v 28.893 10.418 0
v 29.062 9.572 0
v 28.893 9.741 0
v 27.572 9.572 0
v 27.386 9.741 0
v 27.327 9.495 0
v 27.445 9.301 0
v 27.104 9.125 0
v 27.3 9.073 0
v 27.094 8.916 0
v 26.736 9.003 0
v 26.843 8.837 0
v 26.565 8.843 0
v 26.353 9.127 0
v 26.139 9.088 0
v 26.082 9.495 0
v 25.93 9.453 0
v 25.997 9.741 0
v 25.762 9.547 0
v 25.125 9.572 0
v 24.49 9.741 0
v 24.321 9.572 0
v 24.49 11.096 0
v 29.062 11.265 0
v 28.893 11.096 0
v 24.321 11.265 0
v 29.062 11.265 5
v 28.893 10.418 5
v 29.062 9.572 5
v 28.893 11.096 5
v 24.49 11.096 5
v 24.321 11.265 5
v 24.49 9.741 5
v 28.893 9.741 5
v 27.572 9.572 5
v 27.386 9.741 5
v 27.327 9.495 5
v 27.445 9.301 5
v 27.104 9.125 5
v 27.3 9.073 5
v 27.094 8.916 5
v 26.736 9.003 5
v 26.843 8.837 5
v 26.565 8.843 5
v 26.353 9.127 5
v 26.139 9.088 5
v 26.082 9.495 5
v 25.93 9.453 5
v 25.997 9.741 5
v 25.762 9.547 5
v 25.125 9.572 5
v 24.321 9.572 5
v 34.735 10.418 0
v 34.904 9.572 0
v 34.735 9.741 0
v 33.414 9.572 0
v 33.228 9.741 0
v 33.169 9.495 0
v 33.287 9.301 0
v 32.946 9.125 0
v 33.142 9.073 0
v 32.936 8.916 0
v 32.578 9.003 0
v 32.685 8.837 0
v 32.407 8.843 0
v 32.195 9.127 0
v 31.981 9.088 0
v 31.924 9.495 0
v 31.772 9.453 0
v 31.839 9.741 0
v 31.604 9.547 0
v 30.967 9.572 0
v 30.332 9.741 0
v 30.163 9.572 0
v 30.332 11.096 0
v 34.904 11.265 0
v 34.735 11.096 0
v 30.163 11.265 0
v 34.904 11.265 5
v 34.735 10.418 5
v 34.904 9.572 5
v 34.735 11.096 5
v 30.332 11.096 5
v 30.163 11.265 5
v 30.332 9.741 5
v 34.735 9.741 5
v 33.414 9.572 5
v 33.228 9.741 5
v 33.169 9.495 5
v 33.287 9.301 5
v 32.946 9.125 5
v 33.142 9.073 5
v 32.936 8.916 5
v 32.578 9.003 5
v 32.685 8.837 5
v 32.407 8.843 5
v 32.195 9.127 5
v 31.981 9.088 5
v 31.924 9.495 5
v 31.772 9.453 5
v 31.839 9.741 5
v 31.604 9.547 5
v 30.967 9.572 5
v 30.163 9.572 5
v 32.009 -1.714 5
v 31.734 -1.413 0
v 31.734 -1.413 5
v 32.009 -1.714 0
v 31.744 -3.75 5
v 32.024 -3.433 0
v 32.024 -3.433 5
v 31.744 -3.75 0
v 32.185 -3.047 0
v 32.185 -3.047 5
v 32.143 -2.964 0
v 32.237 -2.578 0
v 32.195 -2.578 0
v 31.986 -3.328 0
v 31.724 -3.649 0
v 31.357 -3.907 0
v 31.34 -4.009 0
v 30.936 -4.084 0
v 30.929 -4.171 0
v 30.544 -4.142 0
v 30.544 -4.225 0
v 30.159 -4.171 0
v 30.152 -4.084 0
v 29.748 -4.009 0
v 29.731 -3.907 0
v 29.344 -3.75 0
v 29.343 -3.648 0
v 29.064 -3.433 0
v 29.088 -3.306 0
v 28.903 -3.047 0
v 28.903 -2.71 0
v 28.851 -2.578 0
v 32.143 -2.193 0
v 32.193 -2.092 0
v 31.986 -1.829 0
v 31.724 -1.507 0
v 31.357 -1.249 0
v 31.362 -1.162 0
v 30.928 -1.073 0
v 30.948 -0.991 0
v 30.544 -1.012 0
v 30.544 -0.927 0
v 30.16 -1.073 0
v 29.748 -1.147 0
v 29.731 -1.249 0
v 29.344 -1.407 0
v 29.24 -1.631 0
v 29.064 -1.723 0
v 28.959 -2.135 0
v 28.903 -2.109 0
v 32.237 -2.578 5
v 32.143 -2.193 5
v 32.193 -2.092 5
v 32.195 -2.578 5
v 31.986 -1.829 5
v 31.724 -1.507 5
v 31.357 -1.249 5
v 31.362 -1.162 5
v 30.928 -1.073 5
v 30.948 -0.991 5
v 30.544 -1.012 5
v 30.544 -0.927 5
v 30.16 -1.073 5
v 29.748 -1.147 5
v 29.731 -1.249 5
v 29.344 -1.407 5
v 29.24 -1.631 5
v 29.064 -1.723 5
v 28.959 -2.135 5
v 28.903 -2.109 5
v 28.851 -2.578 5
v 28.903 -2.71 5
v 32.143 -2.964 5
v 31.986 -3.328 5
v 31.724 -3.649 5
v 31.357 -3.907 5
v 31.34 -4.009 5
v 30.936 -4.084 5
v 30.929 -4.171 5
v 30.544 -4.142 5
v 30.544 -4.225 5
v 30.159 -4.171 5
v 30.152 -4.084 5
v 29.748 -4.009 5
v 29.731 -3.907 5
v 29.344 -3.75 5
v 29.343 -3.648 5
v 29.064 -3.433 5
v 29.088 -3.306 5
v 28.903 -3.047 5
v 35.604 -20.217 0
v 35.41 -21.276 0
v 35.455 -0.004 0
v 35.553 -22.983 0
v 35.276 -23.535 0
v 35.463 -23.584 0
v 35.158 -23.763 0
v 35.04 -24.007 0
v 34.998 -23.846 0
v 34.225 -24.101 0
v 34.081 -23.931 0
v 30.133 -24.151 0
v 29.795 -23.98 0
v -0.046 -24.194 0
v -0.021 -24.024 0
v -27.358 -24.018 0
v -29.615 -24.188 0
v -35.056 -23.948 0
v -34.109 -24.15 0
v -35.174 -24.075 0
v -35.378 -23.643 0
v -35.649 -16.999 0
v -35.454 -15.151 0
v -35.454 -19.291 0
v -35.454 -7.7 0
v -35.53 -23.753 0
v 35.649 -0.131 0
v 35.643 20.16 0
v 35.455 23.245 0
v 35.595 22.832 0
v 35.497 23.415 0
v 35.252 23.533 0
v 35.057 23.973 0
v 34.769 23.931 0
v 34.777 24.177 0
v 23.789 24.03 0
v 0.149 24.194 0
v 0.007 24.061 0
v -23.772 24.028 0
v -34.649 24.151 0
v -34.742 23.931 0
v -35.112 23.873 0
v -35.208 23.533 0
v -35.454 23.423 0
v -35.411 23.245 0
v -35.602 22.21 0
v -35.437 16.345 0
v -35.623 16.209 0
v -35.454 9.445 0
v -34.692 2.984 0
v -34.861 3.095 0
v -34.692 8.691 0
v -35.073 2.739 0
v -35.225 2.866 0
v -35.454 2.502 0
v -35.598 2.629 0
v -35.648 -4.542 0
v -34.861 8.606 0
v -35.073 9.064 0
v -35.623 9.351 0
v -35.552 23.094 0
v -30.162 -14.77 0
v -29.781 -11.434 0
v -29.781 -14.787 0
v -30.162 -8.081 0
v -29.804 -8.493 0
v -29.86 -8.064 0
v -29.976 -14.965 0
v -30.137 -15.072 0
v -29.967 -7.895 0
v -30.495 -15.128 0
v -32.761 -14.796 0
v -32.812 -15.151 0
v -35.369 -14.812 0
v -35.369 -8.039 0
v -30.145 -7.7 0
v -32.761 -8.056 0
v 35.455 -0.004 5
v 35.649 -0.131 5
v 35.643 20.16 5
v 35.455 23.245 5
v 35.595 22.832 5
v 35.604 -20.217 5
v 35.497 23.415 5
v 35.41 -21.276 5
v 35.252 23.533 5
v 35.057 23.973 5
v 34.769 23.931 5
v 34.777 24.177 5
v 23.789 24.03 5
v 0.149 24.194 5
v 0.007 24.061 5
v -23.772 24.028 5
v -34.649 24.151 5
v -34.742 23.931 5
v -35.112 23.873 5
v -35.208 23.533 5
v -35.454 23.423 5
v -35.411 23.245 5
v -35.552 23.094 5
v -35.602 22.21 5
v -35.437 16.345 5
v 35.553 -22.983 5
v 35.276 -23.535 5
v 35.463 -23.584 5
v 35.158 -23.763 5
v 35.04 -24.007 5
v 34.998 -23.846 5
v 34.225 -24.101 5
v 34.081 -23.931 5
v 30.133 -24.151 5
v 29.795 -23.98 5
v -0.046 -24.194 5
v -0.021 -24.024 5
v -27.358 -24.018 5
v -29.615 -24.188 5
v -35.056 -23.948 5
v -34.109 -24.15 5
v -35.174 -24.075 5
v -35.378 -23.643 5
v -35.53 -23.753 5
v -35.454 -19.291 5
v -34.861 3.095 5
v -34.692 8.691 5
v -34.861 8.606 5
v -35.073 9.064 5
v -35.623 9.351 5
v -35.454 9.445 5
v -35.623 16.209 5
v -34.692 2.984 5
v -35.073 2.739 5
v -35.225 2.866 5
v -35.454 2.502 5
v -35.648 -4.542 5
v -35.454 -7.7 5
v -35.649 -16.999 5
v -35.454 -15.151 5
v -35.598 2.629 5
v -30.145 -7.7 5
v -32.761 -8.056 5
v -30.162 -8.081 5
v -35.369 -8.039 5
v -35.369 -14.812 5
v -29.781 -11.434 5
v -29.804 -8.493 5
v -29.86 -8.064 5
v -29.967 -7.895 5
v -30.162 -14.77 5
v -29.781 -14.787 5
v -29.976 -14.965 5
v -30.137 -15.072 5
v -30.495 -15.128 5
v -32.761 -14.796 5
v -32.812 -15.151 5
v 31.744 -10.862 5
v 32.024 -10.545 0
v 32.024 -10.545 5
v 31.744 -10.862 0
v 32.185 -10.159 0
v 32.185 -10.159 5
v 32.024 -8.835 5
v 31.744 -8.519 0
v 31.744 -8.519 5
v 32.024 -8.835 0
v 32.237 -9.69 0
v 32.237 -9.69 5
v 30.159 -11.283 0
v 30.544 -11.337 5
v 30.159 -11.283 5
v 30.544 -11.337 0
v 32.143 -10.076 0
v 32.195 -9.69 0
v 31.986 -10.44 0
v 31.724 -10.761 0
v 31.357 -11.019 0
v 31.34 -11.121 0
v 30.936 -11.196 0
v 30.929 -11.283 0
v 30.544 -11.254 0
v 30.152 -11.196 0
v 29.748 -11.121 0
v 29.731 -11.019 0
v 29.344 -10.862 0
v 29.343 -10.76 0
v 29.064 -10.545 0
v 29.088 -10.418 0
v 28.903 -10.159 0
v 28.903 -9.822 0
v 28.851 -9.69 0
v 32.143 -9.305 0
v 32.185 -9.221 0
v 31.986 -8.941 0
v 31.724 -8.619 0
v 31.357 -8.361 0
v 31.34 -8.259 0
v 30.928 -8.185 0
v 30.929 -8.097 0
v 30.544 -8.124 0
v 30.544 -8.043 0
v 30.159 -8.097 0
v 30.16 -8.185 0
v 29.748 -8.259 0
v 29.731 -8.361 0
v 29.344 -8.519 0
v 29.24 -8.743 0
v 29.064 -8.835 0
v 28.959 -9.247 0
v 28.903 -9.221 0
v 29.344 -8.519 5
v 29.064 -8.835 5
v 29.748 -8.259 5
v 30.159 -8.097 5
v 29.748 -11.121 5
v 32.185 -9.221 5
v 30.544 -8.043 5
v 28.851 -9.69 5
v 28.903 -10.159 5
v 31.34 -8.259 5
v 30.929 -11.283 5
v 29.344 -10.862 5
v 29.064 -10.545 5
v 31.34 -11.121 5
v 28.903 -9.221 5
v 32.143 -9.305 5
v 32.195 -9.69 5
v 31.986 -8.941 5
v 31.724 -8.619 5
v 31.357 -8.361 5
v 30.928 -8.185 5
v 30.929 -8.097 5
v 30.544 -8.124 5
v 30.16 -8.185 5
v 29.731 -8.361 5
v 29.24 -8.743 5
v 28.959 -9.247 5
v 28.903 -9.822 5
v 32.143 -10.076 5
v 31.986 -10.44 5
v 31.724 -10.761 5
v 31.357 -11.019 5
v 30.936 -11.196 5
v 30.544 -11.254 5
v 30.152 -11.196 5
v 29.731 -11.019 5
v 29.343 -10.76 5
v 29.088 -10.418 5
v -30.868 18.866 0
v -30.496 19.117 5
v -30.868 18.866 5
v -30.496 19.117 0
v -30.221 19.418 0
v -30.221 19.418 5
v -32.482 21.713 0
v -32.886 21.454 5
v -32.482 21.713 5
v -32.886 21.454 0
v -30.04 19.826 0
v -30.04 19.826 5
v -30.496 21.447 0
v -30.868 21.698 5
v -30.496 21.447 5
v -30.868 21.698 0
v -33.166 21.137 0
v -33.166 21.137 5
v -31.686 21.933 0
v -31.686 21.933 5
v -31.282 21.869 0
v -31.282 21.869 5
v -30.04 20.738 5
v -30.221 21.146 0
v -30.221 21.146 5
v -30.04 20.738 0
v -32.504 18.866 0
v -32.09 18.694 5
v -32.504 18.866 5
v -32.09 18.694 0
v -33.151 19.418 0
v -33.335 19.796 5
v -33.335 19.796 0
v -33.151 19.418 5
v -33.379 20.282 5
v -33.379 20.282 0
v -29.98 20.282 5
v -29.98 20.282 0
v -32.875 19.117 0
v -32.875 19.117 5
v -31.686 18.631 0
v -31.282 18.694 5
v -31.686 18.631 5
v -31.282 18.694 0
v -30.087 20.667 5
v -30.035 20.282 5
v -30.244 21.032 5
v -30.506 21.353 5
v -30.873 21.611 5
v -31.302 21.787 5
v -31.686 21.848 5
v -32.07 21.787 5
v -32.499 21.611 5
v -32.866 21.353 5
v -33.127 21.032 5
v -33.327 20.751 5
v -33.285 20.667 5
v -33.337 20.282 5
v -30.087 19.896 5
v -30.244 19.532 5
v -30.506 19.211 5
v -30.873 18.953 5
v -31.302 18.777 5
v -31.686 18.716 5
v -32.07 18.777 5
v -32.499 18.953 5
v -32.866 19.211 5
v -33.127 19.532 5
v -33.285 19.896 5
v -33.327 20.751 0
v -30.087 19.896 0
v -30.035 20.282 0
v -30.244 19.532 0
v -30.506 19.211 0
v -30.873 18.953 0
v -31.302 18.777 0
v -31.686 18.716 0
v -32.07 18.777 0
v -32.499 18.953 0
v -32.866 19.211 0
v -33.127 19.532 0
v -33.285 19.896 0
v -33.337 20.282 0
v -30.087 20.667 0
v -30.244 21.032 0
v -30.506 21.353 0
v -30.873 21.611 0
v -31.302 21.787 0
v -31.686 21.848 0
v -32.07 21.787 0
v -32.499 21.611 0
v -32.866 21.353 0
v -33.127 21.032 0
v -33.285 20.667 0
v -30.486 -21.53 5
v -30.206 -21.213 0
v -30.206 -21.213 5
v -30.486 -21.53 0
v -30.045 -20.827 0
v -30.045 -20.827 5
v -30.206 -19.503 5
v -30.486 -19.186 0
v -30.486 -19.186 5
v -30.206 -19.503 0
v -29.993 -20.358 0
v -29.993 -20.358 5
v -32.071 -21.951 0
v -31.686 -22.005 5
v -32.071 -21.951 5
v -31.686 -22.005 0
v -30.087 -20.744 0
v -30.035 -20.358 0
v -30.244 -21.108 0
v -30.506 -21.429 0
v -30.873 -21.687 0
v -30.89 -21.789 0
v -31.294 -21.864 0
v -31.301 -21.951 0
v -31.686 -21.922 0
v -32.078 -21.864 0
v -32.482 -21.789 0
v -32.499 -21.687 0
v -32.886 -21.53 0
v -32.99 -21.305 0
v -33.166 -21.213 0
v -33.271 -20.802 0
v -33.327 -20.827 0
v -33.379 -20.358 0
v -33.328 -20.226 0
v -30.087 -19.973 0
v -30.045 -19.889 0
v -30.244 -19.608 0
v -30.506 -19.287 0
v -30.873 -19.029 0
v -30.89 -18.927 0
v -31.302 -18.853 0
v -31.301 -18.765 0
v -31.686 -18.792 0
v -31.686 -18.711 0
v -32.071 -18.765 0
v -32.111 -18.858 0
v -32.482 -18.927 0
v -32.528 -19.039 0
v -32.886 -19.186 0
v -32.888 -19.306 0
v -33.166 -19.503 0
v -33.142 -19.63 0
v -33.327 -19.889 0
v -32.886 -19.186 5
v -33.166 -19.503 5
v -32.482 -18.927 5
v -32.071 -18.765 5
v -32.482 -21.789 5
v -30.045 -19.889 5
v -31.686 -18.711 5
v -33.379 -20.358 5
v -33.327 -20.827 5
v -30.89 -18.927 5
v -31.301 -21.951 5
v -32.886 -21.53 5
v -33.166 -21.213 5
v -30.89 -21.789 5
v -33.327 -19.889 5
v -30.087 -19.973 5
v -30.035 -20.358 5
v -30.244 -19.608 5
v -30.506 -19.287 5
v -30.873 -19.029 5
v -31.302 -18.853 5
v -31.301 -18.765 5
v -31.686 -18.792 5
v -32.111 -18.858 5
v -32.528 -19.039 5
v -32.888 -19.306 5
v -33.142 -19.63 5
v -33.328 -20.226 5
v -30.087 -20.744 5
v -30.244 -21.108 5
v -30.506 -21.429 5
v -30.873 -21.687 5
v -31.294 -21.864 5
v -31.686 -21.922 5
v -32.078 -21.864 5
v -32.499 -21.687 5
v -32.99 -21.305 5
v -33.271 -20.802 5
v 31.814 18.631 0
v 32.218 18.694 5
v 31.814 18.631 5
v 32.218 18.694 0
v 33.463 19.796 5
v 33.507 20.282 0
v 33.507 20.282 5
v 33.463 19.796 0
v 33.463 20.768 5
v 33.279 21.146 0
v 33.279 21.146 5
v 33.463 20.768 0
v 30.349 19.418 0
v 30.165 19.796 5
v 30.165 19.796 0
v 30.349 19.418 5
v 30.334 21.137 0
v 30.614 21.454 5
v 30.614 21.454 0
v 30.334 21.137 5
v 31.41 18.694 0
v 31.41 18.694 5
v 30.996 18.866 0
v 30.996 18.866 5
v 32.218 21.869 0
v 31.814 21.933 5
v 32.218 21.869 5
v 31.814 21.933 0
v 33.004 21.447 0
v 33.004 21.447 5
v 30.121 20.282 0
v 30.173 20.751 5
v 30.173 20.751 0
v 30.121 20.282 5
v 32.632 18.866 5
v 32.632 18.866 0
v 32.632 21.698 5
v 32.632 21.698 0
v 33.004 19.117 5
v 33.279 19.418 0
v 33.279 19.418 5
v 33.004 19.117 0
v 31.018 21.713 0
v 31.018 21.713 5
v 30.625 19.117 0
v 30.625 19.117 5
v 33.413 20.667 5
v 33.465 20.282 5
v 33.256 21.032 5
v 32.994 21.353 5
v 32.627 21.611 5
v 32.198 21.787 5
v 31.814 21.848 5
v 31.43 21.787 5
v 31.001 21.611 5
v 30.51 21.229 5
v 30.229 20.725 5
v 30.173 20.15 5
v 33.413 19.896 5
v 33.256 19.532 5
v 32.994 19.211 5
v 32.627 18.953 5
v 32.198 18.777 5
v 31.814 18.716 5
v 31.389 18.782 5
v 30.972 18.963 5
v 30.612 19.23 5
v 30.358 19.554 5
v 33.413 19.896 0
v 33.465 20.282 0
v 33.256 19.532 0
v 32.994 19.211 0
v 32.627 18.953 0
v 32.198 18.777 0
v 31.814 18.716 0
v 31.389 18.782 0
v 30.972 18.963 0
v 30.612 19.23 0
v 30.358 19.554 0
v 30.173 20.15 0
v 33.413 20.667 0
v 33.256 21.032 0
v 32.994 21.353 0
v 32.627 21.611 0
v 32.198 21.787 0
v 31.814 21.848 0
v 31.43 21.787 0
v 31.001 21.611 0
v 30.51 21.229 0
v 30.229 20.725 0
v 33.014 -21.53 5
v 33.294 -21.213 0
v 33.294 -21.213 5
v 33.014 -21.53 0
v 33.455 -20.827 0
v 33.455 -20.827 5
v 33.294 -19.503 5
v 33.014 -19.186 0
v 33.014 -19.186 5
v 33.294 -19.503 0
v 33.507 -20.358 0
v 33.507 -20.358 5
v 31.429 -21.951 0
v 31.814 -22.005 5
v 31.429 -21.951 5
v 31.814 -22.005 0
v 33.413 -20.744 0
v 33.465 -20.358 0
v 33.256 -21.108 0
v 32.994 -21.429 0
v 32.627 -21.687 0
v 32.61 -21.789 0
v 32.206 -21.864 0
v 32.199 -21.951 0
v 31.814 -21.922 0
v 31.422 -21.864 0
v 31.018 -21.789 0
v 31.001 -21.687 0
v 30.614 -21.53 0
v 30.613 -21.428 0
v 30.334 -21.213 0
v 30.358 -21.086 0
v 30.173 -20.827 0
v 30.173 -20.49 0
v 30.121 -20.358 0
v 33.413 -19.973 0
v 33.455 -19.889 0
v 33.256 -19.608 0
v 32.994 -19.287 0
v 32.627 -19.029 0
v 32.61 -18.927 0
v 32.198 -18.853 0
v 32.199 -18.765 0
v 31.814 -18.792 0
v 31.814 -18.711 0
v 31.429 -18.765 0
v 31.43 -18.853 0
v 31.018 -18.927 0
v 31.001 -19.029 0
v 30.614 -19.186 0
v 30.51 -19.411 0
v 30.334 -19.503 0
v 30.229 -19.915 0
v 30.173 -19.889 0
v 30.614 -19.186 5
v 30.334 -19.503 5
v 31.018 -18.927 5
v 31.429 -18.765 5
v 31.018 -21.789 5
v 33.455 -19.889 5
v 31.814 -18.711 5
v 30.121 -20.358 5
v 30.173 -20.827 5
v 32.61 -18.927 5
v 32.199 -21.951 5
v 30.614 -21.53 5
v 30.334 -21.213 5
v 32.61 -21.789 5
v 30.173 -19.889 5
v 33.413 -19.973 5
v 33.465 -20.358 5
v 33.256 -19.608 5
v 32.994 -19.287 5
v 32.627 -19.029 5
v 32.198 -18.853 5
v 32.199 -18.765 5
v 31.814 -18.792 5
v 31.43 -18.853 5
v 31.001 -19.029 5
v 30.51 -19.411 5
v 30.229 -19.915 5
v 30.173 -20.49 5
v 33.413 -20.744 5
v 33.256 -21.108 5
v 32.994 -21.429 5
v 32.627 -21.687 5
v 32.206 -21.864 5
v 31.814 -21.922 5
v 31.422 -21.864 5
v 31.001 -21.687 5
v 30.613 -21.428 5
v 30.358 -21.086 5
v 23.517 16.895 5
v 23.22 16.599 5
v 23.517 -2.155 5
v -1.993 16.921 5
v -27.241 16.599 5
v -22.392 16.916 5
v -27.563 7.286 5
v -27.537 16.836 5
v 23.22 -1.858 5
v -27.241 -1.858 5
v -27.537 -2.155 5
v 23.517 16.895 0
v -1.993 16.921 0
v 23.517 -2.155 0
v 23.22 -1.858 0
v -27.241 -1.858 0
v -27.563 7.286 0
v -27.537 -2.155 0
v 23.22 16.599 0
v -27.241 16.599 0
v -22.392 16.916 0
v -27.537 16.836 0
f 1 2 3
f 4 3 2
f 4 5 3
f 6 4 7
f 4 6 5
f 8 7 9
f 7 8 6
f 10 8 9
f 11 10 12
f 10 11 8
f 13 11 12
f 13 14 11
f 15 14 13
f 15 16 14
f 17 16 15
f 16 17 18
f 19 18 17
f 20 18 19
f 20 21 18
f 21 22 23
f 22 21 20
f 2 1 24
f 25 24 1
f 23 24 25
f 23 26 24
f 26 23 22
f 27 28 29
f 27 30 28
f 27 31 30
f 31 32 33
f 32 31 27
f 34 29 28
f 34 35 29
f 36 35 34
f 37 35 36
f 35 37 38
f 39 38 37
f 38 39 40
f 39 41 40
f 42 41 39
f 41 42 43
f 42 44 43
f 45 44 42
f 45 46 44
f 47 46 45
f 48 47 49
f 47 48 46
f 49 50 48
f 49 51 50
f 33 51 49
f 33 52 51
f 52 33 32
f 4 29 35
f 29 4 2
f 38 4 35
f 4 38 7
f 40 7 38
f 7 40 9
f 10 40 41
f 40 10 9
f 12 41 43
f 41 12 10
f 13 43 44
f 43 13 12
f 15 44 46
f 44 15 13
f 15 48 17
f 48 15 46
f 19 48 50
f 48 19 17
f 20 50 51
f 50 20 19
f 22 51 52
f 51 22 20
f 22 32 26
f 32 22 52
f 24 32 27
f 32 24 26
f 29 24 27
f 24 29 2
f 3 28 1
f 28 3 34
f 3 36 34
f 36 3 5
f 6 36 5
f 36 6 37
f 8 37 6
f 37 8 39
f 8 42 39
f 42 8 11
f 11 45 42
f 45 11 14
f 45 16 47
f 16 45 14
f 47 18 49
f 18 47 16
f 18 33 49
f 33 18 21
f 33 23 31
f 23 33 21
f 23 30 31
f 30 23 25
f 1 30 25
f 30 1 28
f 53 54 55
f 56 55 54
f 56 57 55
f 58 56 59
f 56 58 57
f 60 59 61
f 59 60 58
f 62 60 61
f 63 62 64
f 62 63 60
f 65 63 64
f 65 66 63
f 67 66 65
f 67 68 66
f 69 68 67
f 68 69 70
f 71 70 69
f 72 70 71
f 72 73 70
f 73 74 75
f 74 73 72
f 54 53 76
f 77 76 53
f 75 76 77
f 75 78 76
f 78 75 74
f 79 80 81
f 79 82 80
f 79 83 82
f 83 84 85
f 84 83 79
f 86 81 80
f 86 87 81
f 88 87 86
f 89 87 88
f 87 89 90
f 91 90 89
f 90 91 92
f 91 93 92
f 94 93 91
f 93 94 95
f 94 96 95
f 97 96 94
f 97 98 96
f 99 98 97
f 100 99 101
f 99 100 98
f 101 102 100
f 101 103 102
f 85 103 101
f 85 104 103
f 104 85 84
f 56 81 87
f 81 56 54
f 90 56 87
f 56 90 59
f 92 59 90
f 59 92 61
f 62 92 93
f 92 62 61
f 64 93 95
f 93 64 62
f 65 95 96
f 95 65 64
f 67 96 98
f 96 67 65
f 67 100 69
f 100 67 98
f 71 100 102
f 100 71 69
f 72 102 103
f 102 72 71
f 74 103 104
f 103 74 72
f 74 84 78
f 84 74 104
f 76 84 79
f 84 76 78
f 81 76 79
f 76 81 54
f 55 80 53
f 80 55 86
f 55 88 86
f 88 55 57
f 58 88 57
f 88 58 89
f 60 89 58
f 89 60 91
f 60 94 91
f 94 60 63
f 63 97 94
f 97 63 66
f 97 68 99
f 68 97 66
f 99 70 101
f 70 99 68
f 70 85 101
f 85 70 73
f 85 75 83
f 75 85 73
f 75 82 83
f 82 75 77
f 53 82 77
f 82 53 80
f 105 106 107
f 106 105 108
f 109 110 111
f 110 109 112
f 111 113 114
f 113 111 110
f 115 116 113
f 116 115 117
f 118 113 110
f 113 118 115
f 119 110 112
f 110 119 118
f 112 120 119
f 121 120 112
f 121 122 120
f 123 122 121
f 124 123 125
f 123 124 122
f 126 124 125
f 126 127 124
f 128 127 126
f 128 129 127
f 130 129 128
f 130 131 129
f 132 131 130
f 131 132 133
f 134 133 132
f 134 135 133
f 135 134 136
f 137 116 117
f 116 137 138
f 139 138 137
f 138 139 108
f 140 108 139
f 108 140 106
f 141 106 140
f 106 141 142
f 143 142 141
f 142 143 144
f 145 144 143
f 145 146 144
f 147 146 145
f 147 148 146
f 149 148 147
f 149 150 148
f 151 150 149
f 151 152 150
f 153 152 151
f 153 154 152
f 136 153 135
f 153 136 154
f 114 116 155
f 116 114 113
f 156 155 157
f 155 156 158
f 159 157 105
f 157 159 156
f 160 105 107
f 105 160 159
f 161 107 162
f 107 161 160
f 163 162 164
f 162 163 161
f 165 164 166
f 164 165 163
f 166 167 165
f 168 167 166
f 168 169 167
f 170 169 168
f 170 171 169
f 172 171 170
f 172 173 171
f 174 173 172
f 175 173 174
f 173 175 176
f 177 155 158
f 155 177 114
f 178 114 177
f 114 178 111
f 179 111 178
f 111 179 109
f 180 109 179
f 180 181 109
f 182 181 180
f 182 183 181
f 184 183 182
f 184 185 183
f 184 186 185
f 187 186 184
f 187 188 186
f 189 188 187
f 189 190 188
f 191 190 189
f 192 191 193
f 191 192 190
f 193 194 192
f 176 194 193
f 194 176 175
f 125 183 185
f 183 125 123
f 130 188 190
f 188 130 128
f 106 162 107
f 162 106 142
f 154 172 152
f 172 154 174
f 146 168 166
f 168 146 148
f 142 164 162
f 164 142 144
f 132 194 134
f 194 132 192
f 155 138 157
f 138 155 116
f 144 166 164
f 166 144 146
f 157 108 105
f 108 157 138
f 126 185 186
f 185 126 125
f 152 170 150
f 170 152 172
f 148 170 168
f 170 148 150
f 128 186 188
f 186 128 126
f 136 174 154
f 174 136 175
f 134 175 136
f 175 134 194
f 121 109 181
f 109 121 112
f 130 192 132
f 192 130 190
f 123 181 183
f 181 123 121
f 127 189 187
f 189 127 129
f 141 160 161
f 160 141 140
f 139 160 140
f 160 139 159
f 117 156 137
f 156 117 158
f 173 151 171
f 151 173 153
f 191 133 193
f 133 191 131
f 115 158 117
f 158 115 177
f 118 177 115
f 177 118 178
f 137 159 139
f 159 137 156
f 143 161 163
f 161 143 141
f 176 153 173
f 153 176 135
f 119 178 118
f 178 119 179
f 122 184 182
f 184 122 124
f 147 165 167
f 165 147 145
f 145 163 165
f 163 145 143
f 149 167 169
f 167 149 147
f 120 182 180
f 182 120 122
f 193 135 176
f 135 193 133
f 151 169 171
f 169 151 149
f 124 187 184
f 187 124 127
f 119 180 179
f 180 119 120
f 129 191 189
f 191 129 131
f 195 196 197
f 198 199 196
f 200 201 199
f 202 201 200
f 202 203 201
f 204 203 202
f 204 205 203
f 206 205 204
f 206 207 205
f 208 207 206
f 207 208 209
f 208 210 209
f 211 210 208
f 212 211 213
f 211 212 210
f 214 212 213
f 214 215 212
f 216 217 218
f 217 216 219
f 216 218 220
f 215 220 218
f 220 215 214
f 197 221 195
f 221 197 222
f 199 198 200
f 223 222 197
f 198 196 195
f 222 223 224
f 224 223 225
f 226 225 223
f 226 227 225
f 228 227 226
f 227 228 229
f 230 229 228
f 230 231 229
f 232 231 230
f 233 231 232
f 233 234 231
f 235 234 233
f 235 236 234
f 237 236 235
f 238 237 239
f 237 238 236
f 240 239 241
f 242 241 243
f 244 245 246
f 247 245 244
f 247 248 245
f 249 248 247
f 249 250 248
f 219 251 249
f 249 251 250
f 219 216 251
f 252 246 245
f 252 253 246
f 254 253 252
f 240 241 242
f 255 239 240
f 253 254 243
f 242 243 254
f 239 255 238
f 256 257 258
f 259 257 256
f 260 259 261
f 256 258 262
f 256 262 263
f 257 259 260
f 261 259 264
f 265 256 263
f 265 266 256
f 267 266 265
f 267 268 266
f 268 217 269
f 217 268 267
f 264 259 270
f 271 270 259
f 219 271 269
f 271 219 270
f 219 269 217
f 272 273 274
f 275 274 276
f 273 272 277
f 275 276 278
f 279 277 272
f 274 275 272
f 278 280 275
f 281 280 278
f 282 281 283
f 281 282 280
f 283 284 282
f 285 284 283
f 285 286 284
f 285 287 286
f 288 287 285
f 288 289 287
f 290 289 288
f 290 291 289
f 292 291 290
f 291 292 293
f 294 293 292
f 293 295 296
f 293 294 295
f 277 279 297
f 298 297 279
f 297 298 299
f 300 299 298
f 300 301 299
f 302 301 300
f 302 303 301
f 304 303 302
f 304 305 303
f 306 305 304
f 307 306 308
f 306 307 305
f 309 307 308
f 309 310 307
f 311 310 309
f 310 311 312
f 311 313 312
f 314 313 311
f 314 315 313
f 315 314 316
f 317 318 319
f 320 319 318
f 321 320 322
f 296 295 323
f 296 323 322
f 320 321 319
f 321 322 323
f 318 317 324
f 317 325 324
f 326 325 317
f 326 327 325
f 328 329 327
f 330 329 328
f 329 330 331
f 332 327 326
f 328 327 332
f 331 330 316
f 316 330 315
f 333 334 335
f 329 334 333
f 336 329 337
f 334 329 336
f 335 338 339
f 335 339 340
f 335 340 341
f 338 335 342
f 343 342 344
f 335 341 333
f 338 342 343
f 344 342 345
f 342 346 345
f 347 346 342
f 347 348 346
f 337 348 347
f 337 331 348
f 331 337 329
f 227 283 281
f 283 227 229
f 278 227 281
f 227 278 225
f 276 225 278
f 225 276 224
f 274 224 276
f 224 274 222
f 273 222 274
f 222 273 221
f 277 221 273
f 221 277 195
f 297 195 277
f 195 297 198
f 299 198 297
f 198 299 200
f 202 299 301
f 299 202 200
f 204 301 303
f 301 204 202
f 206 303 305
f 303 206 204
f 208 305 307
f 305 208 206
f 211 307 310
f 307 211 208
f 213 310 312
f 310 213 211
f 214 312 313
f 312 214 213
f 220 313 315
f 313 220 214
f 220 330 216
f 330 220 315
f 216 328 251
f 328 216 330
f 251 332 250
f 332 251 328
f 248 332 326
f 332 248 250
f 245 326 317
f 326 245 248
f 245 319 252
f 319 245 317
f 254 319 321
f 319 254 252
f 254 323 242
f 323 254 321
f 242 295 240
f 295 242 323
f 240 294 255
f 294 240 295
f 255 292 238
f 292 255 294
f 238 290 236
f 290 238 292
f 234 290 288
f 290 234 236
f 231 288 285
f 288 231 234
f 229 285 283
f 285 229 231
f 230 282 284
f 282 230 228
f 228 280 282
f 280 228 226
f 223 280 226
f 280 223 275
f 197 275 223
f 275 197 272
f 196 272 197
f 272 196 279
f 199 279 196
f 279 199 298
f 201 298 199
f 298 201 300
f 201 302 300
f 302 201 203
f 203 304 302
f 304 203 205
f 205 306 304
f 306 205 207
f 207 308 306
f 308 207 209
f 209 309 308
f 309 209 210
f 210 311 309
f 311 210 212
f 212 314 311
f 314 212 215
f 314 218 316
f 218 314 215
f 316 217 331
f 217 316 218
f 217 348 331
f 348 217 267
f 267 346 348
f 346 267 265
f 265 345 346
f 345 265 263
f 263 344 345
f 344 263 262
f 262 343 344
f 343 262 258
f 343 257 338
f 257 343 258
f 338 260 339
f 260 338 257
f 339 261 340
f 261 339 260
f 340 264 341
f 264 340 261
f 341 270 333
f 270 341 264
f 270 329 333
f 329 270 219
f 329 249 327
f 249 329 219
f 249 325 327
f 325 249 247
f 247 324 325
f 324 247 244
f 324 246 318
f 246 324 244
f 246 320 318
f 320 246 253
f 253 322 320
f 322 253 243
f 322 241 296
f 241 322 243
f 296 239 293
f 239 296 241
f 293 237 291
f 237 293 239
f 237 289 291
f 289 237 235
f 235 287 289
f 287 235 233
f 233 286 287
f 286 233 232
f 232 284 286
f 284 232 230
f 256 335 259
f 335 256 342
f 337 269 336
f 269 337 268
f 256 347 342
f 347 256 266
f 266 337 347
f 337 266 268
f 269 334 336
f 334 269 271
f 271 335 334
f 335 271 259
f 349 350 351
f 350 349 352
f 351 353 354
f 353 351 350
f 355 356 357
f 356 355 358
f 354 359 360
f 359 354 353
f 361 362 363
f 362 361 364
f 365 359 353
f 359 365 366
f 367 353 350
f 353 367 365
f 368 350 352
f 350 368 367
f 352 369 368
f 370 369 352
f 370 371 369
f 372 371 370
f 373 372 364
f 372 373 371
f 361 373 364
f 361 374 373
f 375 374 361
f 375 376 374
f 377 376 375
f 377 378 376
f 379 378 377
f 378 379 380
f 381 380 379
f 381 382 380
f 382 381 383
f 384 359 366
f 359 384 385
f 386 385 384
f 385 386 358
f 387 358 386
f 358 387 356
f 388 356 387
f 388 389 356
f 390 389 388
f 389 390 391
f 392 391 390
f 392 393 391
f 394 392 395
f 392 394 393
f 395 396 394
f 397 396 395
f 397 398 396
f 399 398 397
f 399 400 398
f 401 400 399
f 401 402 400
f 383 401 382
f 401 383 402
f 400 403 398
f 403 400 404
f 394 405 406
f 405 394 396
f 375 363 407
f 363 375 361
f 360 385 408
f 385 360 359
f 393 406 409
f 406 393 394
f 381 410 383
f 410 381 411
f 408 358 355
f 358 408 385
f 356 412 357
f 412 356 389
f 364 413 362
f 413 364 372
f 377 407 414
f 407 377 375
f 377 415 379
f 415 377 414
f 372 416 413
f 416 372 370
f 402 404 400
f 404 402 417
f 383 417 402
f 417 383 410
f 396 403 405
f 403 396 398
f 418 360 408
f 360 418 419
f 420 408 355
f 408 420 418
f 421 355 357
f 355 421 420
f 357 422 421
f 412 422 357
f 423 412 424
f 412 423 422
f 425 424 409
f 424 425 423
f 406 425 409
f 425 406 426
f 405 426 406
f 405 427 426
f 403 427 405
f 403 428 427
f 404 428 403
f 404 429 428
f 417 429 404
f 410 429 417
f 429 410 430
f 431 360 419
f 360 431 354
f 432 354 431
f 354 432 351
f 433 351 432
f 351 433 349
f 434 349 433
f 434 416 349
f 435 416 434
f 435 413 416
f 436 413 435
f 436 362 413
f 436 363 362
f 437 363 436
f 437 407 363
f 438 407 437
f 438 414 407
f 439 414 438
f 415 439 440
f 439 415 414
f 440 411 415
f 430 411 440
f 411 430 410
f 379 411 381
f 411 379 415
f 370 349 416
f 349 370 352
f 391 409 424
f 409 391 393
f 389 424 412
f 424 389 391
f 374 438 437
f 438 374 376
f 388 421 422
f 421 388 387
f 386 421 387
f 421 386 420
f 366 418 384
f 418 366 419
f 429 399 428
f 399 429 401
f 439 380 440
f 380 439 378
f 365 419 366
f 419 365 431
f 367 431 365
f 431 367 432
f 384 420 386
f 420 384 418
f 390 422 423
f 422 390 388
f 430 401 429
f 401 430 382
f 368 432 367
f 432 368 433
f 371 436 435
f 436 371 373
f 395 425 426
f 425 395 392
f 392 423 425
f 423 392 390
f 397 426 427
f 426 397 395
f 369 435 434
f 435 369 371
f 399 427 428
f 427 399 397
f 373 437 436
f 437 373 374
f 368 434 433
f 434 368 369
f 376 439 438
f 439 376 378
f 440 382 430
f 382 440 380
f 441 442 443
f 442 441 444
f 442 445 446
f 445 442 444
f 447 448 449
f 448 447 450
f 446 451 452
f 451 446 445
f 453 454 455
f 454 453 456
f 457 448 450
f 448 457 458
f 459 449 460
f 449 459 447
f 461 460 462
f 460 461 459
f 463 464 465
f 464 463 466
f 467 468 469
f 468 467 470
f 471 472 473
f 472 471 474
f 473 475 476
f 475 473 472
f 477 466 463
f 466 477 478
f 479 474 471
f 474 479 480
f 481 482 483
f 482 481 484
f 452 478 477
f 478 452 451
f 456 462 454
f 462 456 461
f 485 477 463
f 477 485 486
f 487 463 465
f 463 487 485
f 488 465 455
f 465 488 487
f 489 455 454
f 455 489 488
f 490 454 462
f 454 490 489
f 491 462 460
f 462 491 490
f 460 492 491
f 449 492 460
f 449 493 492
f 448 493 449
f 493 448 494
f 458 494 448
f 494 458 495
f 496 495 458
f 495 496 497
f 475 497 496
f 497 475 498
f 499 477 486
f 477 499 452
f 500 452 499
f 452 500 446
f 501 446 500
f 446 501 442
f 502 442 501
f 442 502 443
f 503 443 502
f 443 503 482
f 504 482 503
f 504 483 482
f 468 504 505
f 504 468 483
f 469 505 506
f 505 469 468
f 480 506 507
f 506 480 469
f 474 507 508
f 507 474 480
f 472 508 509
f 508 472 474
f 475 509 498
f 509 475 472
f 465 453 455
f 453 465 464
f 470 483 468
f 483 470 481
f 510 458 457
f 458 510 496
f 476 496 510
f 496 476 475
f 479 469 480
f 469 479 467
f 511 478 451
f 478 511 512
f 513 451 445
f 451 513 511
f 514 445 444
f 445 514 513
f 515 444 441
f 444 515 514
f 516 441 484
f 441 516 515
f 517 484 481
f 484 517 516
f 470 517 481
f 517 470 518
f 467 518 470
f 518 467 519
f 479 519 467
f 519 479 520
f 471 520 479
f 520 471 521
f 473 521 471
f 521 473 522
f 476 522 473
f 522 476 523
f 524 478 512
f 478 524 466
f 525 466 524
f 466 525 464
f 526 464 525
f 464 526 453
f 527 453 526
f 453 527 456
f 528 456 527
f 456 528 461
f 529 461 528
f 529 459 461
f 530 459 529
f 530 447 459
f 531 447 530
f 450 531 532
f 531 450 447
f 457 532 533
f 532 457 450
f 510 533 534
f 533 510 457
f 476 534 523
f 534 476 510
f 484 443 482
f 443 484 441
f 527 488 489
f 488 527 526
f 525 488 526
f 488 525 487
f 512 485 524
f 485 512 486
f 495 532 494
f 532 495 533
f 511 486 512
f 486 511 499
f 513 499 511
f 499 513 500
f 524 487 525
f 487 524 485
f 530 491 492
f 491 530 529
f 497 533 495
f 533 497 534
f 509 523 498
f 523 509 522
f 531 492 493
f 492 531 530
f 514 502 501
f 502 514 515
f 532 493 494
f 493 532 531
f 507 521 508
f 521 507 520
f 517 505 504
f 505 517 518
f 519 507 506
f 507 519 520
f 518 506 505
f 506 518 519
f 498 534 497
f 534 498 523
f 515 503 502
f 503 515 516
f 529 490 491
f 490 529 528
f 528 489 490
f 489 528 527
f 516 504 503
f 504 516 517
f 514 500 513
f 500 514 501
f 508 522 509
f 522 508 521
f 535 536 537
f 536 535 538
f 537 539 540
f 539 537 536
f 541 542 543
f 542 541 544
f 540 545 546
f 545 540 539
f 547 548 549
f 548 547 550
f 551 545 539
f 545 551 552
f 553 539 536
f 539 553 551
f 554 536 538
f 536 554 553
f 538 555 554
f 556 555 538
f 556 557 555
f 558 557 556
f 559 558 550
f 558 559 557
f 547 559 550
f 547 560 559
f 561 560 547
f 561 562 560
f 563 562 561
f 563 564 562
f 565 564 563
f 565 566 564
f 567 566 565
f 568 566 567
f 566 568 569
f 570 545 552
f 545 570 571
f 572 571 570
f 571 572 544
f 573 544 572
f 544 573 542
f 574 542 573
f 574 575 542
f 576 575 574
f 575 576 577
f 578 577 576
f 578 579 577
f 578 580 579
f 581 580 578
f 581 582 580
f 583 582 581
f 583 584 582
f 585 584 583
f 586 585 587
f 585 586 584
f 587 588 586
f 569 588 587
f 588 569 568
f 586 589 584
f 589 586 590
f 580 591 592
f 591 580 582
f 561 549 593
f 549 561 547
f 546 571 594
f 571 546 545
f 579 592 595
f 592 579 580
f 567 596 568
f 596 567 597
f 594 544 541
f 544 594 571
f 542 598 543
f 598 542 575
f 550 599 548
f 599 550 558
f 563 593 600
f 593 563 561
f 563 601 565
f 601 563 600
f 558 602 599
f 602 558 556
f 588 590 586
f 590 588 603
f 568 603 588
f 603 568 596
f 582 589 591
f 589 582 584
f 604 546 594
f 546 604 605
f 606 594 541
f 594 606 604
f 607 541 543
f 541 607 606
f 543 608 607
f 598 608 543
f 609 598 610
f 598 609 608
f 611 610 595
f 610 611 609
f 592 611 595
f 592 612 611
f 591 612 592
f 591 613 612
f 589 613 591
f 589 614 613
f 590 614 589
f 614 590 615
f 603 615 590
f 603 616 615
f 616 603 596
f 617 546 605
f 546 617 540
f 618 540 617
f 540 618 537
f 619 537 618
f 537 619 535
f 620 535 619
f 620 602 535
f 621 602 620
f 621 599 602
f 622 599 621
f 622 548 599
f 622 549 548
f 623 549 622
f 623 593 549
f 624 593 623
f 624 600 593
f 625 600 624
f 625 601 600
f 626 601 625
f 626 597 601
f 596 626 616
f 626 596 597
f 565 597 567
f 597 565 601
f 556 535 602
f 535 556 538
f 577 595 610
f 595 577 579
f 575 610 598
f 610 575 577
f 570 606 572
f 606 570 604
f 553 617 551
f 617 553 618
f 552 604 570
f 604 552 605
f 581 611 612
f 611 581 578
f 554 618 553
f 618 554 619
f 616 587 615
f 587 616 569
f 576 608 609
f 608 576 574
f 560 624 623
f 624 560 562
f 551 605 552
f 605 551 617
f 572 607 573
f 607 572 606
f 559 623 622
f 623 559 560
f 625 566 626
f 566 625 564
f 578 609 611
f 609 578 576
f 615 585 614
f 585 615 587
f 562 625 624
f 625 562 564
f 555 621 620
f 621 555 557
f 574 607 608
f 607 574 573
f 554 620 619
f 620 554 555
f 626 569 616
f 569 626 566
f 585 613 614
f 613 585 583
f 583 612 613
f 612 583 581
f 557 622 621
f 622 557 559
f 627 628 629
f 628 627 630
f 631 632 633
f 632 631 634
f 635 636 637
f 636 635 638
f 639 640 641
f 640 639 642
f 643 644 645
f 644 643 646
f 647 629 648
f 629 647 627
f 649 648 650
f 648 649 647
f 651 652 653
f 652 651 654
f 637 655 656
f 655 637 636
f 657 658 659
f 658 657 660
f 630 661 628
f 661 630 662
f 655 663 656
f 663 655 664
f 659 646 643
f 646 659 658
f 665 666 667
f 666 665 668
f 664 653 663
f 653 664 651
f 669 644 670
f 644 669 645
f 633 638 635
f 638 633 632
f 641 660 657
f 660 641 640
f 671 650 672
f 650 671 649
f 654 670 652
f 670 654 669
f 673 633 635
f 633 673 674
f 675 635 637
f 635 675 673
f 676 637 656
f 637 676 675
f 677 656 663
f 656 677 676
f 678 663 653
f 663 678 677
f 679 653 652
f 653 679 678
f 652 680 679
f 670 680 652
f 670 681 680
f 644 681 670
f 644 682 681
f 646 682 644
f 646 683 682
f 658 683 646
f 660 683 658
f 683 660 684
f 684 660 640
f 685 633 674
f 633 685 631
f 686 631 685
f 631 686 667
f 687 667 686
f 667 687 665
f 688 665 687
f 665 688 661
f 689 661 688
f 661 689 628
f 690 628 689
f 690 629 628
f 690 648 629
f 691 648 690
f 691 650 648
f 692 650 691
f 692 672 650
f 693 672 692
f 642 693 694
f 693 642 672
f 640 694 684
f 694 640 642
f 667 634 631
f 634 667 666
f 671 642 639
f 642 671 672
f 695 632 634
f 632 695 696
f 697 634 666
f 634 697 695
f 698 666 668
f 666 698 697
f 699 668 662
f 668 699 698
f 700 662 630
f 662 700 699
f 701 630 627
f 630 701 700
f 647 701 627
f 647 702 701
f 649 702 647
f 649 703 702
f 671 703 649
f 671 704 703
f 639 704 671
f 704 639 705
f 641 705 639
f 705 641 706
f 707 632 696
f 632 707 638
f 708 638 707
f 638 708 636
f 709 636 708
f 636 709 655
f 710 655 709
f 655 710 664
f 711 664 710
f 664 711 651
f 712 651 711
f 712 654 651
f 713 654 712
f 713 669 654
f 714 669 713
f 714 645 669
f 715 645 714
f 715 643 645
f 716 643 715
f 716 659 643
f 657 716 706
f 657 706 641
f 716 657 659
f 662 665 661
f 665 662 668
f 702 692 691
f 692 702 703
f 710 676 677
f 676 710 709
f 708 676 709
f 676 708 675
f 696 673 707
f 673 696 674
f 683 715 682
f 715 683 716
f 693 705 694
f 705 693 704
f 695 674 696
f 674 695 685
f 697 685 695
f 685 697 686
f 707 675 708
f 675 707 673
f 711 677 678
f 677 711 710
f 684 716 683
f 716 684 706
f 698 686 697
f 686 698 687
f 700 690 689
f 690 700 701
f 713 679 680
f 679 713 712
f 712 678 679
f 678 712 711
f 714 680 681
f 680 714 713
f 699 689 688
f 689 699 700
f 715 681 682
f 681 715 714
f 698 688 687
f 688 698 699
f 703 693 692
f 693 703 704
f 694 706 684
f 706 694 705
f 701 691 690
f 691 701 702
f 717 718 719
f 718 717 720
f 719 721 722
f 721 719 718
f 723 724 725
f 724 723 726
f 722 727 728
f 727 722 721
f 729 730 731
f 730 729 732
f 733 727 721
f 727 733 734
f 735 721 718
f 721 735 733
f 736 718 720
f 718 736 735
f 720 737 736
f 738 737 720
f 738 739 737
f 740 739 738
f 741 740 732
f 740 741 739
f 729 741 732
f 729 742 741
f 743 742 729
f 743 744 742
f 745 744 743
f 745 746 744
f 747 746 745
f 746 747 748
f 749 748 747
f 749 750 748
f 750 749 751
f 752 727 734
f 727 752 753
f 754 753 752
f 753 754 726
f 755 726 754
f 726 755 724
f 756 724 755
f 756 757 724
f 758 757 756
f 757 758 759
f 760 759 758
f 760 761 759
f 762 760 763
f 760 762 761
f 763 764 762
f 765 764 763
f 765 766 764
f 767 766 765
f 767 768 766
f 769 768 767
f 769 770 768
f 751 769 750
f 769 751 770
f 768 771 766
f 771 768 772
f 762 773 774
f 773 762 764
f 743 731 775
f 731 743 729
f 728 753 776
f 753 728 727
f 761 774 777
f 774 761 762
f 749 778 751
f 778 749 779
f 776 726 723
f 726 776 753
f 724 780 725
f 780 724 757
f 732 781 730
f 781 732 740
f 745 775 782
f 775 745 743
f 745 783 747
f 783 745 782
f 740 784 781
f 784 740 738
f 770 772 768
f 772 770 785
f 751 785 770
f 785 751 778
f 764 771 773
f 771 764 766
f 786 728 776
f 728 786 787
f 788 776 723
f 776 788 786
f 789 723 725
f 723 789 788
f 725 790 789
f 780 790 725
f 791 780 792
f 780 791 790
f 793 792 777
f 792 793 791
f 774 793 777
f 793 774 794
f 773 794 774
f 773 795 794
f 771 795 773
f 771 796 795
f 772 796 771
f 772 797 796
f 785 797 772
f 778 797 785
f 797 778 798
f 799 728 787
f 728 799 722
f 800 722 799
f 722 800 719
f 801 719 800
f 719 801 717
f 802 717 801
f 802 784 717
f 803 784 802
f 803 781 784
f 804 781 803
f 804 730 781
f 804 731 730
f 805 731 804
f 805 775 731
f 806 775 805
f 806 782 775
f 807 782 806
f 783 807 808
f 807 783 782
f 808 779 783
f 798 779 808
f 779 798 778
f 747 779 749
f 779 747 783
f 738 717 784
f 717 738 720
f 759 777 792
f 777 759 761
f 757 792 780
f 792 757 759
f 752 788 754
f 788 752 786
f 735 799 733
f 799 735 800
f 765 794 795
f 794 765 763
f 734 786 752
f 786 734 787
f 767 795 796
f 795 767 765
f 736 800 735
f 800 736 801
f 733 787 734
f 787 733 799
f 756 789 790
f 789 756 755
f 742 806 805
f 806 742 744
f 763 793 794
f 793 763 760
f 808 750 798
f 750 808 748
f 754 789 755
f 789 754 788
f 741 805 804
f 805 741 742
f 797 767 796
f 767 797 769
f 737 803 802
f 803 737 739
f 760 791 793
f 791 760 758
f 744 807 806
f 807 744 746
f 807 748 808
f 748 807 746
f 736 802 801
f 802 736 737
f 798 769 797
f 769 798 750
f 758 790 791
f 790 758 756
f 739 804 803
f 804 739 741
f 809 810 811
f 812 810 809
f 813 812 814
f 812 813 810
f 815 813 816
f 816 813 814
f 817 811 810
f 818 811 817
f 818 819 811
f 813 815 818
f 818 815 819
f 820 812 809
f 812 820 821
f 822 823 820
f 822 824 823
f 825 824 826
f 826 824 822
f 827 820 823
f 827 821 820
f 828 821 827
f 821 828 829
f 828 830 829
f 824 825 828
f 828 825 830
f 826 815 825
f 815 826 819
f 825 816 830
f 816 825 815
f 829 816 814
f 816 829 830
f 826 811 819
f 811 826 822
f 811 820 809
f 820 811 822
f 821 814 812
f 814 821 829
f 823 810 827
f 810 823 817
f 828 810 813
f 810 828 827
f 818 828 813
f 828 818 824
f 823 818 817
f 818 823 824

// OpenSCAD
// Module names are of the form poly_<inkscape-path-id>().  As a result,
// you can associate a polygon in this OpenSCAD program with the corresponding
// SVG element in the Inkscape document by looking for the XML element with
// the attribute id="inkscape-path-id".

// fudge value is used to ensure that subtracted solids are a tad taller
// in the z dimension than the polygon being subtracted from.  This helps
// keep the resulting .stl file manifold.
fudge = 0.1;

module poly_path291(h)
{
  scale([25.4/90, -25.4/90, 1]) union()
  {
    difference()
    {
       linear_extrude(height=h)
         polygon([[86.176897,-36.915019],[86.176897,-33.915018],[89.026885,-33.915018],[91.284375,-33.828768],[91.876873,-33.495019],[92.619386,-32.201267],[94.126909,-31.335016],[95.112221,-31.313927],[96.001907,-31.593771],[96.734091,-32.149238],[97.246897,-32.955019],[97.696897,-33.915018],[100.336908,-33.915018],[102.976885,-33.915018],[102.976885,-36.915019],[102.976885,-39.915020],[94.576908,-39.915020],[86.176897,-39.915020]]);
       translate([0, 0, -fudge])
         linear_extrude(height=h+2*fudge)
           polygon([[102.376896,-36.915019],[102.376896,-34.515017],[99.706908,-34.515017],[97.036885,-34.515017],[96.826767,-33.645018],[96.036444,-32.332987],[94.734253,-31.901267],[93.375811,-32.341423],[92.416731,-33.645018],[92.116613,-34.515017],[89.446590,-34.515017],[86.776602,-34.515017],[86.776602,-36.915019],[86.776602,-39.315021],[94.576625,-39.315021],[102.376613,-39.315021]]);
    }
  }
}

module poly_path293(h)
{
  scale([25.4/90, -25.4/90, 1]) union()
  {
    difference()
    {
       linear_extrude(height=h)
         polygon([[106.876896,-36.915019],[106.876896,-33.915018],[109.726884,-33.915018],[111.984405,-33.828768],[112.576908,-33.495019],[113.319404,-32.201267],[114.826908,-31.335016],[115.812220,-31.313927],[116.701906,-31.593771],[117.434090,-32.149238],[117.946896,-32.955019],[118.396896,-33.915018],[121.036908,-33.915018],[123.676920,-33.915018],[123.676920,-36.915019],[123.676920,-39.915020],[115.276908,-39.915020],[106.876896,-39.915020]]);
       translate([0, 0, -fudge])
         linear_extrude(height=h+2*fudge)
           polygon([[123.076896,-36.915019],[123.076896,-34.515017],[120.406908,-34.515017],[117.736884,-34.515017],[117.526766,-33.645018],[116.736444,-32.332987],[115.434257,-31.901267],[114.075825,-32.341423],[113.116766,-33.645018],[112.816648,-34.515017],[110.146660,-34.515017],[107.476637,-34.515017],[107.476637,-36.915019],[107.476637,-39.315021],[115.276660,-39.315021],[123.076648,-39.315021]]);
    }
  }
}

module poly_path295(h)
{
  scale([25.4/90, -25.4/90, 1]) union()
  {
    difference()
    {
       linear_extrude(height=h)
         polygon([[105.406885,4.064995],[103.973456,4.983746],[102.984401,6.104996],[102.411594,7.473746],[102.226908,9.134996],[102.411594,10.796248],[102.984401,12.164999],[103.973456,13.286250],[105.406885,14.205001],[106.861895,14.778749],[108.226896,14.969999],[109.591898,14.778749],[111.046908,14.205001],[112.480337,13.286250],[113.469392,12.164999],[114.042199,10.796248],[114.226884,9.134996],[114.069429,7.413747],[113.416884,6.074996],[112.441418,5.006247],[111.125640,4.117497],[109.657988,3.509997],[108.226896,3.284996],[105.406885,4.064995]]);
       translate([0, 0, -fudge])
         linear_extrude(height=h+2*fudge)
           polygon([[111.106896,4.424995],[112.406271,5.339175],[113.334396,6.479058],[113.891271,7.769410],[114.076896,9.134997],[113.891271,10.500583],[113.334396,11.790936],[112.406271,12.930820],[111.106896,13.845001],[109.616268,14.469374],[108.226896,14.677499],[106.837525,14.469374],[105.346896,13.845001],[103.970641,12.926249],[103.066885,11.714999],[102.410646,9.601404],[102.609399,7.563747],[103.606898,5.779214],[105.346896,4.424995],[106.865651,3.802495],[108.226896,3.584994],[109.588142,3.802499],[111.106896,4.424995]]);
    }
  }
}

module poly_path283(h)
{
  scale([25.4/90, -25.4/90, 1]) union()
  {
    difference()
    {
       linear_extrude(height=h)
         polygon([[-122.773189,-85.575038],[-124.411941,-84.588787],[-125.623191,-82.995036],[-125.970066,-81.827848],[-126.148190,-78.697535],[-126.223190,-57.435026],[-126.223190,-33.135019],[-124.873190,-31.815017],[-123.523190,-30.495018],[-123.523190,-20.715012],[-123.523190,-10.965012],[-124.813191,-10.155008],[-126.133190,-9.315010],[-126.313190,16.095001],[-126.316896,60.232517],[-125.893191,84.165025],[-124.633188,85.305024],[-120.857406,85.568932],[-104.934432,85.706276],[-0.163145,85.725026],[106.771895,85.575026],[121.269397,85.395963],[124.156896,85.065025],[125.656920,83.565026],[125.975197,81.435494],[126.155658,71.636272],[126.316896,0.464995],[126.294307,-71.433782],[126.122767,-80.902067],[125.776896,-82.965038],[124.216920,-84.945038],[123.226920,-85.665038],[0.526858,-85.725026],[-122.773189,-85.575038]]);
       translate([0, 0, -fudge])
         linear_extrude(height=h+2*fudge)
           polygon([[123.196908,-84.795036],[124.906908,-83.385037],[125.626908,-82.365036],[125.626908,0.014995],[125.469452,75.386272],[124.994145,83.390180],[124.576121,84.200825],[124.006908,84.495024],[120.760338,84.795962],[105.571892,84.967525],[-0.073145,85.125024],[-96.939429,85.102475],[-124.213189,84.855024],[-125.353191,83.775024],[-125.623191,68.355020],[-125.623191,53.685013],[-116.263188,53.685013],[-108.054435,53.602513],[-106.783652,53.406576],[-106.213182,53.025015],[-105.523183,52.395012],[-105.523183,40.515008],[-105.605683,30.093756],[-105.801620,28.571724],[-106.183181,27.975004],[-106.813185,27.285005],[-116.233187,27.285005],[-125.623191,27.285005],[-125.623191,9.194999],[-125.623191,-8.865010],[-124.273188,-9.705008],[-122.923188,-10.575010],[-122.923188,-20.685015],[-122.923188,-30.795016],[-124.273188,-32.115018],[-125.623191,-33.465018],[-125.563203,-57.915027],[-125.473203,-82.365036],[-124.753203,-83.385037],[-123.103202,-84.795036],[-84.230687,-85.136755],[0.024348,-85.256287],[84.290636,-85.145192],[123.196908,-84.795036]]);
       translate([0, 0, -fudge])
         linear_extrude(height=h+2*fudge)
           polygon([[-106.873183,40.485011],[-106.873183,52.335013],[-116.083188,52.425013],[-125.323190,52.485001],[-125.323190,40.484997],[-125.323190,28.484989],[-116.083188,28.544977],[-106.873183,28.634977]]);
    }
  }
}

module poly_path297(h)
{
  scale([25.4/90, -25.4/90, 1]) union()
  {
    difference()
    {
       linear_extrude(height=h)
         polygon([[105.406885,29.265005],[103.973456,30.183756],[102.984401,31.305006],[102.411594,32.673756],[102.226908,34.335006],[102.411594,35.996257],[102.984401,37.365008],[103.973456,38.486258],[105.406885,39.405007],[106.861895,39.978758],[108.226896,40.170008],[109.591898,39.978758],[111.046908,39.405007],[112.480337,38.486258],[113.469392,37.365008],[114.042199,35.996257],[114.226884,34.335006],[114.042199,32.673756],[113.469392,31.305006],[112.480337,30.183756],[111.046908,29.265005],[109.591898,28.691255],[108.226896,28.500004],[106.861895,28.691255],[105.406885,29.265005]]);
       translate([0, 0, -fudge])
         linear_extrude(height=h+2*fudge)
           polygon([[111.106896,29.625005],[112.406271,30.539185],[113.334396,31.679068],[113.891271,32.969420],[114.076896,34.335006],[113.891271,35.700593],[113.334396,36.990944],[112.406271,38.130828],[111.106896,39.045007],[109.616268,39.669383],[108.226896,39.877508],[106.837525,39.669383],[105.346896,39.045007],[103.970641,38.126258],[103.066885,36.915009],[102.410646,34.801413],[102.609399,32.763756],[103.606898,30.979224],[105.346896,29.625005],[106.865651,29.002505],[108.226896,28.785004],[109.588142,29.002509],[111.106896,29.625005]]);
    }
  }
}

module poly_path285(h)
{
  scale([25.4/90, -25.4/90, 1]) union()
  {
    difference()
    {
       linear_extrude(height=h)
         polygon([[-115.093184,-76.935035],[-116.526623,-76.016284],[-117.515686,-74.895034],[-118.088498,-73.526284],[-118.273186,-71.865034],[-118.115690,-70.143781],[-117.463186,-68.805030],[-116.487717,-67.736281],[-115.171936,-66.847531],[-113.704279,-66.240030],[-112.273183,-66.015030],[-110.842090,-66.240030],[-109.374434,-66.847531],[-108.058653,-67.736281],[-107.083185,-68.805030],[-106.441933,-70.250656],[-106.228183,-71.865032],[-106.441933,-73.479408],[-107.083185,-74.925034],[-108.058653,-75.993783],[-109.374434,-76.882533],[-110.842090,-77.490033],[-112.273183,-77.715034],[-115.093184,-76.935035]]);
       translate([0, 0, -fudge])
         linear_extrude(height=h+2*fudge)
           polygon([[-109.393183,-76.575035],[-108.093808,-75.660855],[-107.165683,-74.520972],[-106.608808,-73.230620],[-106.423183,-71.865033],[-106.608808,-70.499446],[-107.165683,-69.209094],[-108.093808,-68.069210],[-109.393183,-67.155029],[-110.911934,-66.532530],[-112.273183,-66.315031],[-113.634436,-66.532536],[-115.153187,-67.155029],[-116.452562,-68.069210],[-117.380687,-69.209094],[-117.937562,-70.499446],[-118.123187,-71.865033],[-117.937562,-73.230620],[-117.380687,-74.520972],[-116.452562,-75.660855],[-115.153187,-76.575035],[-113.634436,-77.197535],[-112.273183,-77.415036],[-110.911934,-77.197531],[-109.393183,-76.575035]]);
    }
  }
}

module poly_path299(h)
{
  scale([25.4/90, -25.4/90, 1]) union()
  {
    difference()
    {
       linear_extrude(height=h)
         polygon([[-115.093184,67.065018],[-116.526623,67.983769],[-117.515686,69.105019],[-118.088498,70.473770],[-118.273186,72.135019],[-118.088498,73.796272],[-117.515686,75.165023],[-116.526623,76.286273],[-115.093184,77.205024],[-113.638185,77.778773],[-112.273185,77.970022],[-110.908184,77.778773],[-109.453182,77.205024],[-108.019745,76.286273],[-107.030682,75.165023],[-106.457869,73.796272],[-106.273181,72.135019],[-106.457869,70.473770],[-107.030682,69.105019],[-108.019745,67.983769],[-109.453182,67.065018],[-110.908184,66.491268],[-112.273185,66.300018],[-113.638185,66.491268],[-115.093184,67.065018]]);
       translate([0, 0, -fudge])
         linear_extrude(height=h+2*fudge)
           polygon([[-109.393183,67.425018],[-108.093808,68.339198],[-107.165683,69.479081],[-106.608808,70.769433],[-106.423183,72.135020],[-106.608808,73.500607],[-107.165683,74.790959],[-108.093808,75.930843],[-109.393183,76.845024],[-110.883809,77.469398],[-112.273185,77.677522],[-113.662561,77.469398],[-115.153187,76.845024],[-116.893187,75.490803],[-117.890688,73.706271],[-118.089438,71.668614],[-117.433188,69.555021],[-116.534124,68.407520],[-115.258186,67.462519],[-113.779747,66.821268],[-112.273183,66.585017],[-110.911934,66.802522],[-109.393183,67.425018]]);
    }
  }
}

module poly_path287(h)
{
  scale([25.4/90, -25.4/90, 1]) union()
  {
    difference()
    {
       linear_extrude(height=h)
         polygon([[109.906884,-76.935035],[108.473456,-76.016284],[107.484401,-74.895034],[106.911594,-73.526284],[106.726908,-71.865034],[106.884364,-70.143781],[107.536908,-68.805030],[108.512375,-67.736281],[109.828152,-66.847531],[111.295804,-66.240030],[112.726896,-66.015030],[114.157988,-66.240030],[115.625640,-66.847531],[116.941417,-67.736281],[117.916884,-68.805030],[118.569389,-70.143781],[118.726884,-71.865034],[118.569429,-73.586283],[117.916884,-74.925034],[116.941417,-75.993783],[115.625640,-76.882533],[114.157988,-77.490033],[112.726896,-77.715034],[109.906884,-76.935035]]);
       translate([0, 0, -fudge])
         linear_extrude(height=h+2*fudge)
           polygon([[115.606896,-76.575035],[116.906271,-75.660855],[117.834396,-74.520972],[118.391271,-73.230620],[118.576896,-71.865033],[118.391271,-70.499446],[117.834396,-69.209094],[116.906271,-68.069210],[115.606896,-67.155029],[114.088142,-66.532530],[112.726896,-66.315031],[111.220340,-66.551281],[109.741904,-67.192531],[108.465961,-68.137531],[107.566885,-69.285031],[106.910646,-71.398626],[107.109399,-73.436283],[108.106898,-75.220815],[109.846896,-76.575035],[111.365651,-77.197535],[112.726896,-77.415036],[114.088142,-77.197531],[115.606896,-76.575035]]);
    }
  }
}

module poly_path301(h)
{
  scale([25.4/90, -25.4/90, 1]) union()
  {
    difference()
    {
       linear_extrude(height=h)
         polygon([[109.906884,67.065018],[108.473456,67.983769],[107.484401,69.105019],[106.911594,70.473770],[106.726908,72.135019],[106.911594,73.796272],[107.484401,75.165023],[108.473456,76.286273],[109.906884,77.205024],[111.361895,77.778773],[112.726896,77.970022],[114.091898,77.778773],[115.546908,77.205024],[116.980337,76.286273],[117.969392,75.165023],[118.542199,73.796272],[118.726884,72.135019],[118.542199,70.473770],[117.969392,69.105019],[116.980337,67.983769],[115.546908,67.065018],[114.091898,66.491268],[112.726896,66.300018],[111.361895,66.491268],[109.906884,67.065018]]);
       translate([0, 0, -fudge])
         linear_extrude(height=h+2*fudge)
           polygon([[115.606896,67.425018],[116.906271,68.339198],[117.834396,69.479081],[118.391271,70.769433],[118.576896,72.135020],[118.391271,73.500607],[117.834396,74.790959],[116.906271,75.930843],[115.606896,76.845024],[114.116268,77.469398],[112.726896,77.677522],[111.337525,77.469398],[109.846896,76.845024],[108.470640,75.926272],[107.566885,74.715022],[106.910646,72.601428],[107.109399,70.563770],[108.106898,68.779238],[109.846896,67.425018],[111.365651,66.802518],[112.726896,66.585017],[114.088142,66.802522],[115.606896,67.425018]]);
    }
  }
}

module poly_path289(h)
{
  scale([25.4/90, -25.4/90, 1]) union()
  {
    difference()
    {
       linear_extrude(height=h)
         polygon([[-97.573179,-59.655028],[-97.663179,-25.815015],[-97.573179,7.634997],[-7.123146,7.634997],[83.326873,7.634997],[83.326873,-26.115016],[83.326873,-59.865029],[-7.063147,-59.955029],[-79.340672,-59.940023],[-97.573179,-59.655017]]);
       translate([0, 0, -fudge])
         linear_extrude(height=h+2*fudge)
           polygon([[82.276885,-26.115016],[82.276885,6.584995],[-7.123146,6.584995],[-96.523180,6.584995],[-96.523180,-26.115016],[-96.523180,-58.815027],[-7.123146,-58.815027],[82.276885,-58.815027]]);
    }
  }
}

module Wash_Hand_dim(h)
{

poly_path291(h);
poly_path293(h);
poly_path295(h);
poly_path283(h);
poly_path297(h);
poly_path285(h);
poly_path299(h);
poly_path287(h);
poly_path301(h);
poly_path289(h);
}

Wash_Hand_dim(5);
